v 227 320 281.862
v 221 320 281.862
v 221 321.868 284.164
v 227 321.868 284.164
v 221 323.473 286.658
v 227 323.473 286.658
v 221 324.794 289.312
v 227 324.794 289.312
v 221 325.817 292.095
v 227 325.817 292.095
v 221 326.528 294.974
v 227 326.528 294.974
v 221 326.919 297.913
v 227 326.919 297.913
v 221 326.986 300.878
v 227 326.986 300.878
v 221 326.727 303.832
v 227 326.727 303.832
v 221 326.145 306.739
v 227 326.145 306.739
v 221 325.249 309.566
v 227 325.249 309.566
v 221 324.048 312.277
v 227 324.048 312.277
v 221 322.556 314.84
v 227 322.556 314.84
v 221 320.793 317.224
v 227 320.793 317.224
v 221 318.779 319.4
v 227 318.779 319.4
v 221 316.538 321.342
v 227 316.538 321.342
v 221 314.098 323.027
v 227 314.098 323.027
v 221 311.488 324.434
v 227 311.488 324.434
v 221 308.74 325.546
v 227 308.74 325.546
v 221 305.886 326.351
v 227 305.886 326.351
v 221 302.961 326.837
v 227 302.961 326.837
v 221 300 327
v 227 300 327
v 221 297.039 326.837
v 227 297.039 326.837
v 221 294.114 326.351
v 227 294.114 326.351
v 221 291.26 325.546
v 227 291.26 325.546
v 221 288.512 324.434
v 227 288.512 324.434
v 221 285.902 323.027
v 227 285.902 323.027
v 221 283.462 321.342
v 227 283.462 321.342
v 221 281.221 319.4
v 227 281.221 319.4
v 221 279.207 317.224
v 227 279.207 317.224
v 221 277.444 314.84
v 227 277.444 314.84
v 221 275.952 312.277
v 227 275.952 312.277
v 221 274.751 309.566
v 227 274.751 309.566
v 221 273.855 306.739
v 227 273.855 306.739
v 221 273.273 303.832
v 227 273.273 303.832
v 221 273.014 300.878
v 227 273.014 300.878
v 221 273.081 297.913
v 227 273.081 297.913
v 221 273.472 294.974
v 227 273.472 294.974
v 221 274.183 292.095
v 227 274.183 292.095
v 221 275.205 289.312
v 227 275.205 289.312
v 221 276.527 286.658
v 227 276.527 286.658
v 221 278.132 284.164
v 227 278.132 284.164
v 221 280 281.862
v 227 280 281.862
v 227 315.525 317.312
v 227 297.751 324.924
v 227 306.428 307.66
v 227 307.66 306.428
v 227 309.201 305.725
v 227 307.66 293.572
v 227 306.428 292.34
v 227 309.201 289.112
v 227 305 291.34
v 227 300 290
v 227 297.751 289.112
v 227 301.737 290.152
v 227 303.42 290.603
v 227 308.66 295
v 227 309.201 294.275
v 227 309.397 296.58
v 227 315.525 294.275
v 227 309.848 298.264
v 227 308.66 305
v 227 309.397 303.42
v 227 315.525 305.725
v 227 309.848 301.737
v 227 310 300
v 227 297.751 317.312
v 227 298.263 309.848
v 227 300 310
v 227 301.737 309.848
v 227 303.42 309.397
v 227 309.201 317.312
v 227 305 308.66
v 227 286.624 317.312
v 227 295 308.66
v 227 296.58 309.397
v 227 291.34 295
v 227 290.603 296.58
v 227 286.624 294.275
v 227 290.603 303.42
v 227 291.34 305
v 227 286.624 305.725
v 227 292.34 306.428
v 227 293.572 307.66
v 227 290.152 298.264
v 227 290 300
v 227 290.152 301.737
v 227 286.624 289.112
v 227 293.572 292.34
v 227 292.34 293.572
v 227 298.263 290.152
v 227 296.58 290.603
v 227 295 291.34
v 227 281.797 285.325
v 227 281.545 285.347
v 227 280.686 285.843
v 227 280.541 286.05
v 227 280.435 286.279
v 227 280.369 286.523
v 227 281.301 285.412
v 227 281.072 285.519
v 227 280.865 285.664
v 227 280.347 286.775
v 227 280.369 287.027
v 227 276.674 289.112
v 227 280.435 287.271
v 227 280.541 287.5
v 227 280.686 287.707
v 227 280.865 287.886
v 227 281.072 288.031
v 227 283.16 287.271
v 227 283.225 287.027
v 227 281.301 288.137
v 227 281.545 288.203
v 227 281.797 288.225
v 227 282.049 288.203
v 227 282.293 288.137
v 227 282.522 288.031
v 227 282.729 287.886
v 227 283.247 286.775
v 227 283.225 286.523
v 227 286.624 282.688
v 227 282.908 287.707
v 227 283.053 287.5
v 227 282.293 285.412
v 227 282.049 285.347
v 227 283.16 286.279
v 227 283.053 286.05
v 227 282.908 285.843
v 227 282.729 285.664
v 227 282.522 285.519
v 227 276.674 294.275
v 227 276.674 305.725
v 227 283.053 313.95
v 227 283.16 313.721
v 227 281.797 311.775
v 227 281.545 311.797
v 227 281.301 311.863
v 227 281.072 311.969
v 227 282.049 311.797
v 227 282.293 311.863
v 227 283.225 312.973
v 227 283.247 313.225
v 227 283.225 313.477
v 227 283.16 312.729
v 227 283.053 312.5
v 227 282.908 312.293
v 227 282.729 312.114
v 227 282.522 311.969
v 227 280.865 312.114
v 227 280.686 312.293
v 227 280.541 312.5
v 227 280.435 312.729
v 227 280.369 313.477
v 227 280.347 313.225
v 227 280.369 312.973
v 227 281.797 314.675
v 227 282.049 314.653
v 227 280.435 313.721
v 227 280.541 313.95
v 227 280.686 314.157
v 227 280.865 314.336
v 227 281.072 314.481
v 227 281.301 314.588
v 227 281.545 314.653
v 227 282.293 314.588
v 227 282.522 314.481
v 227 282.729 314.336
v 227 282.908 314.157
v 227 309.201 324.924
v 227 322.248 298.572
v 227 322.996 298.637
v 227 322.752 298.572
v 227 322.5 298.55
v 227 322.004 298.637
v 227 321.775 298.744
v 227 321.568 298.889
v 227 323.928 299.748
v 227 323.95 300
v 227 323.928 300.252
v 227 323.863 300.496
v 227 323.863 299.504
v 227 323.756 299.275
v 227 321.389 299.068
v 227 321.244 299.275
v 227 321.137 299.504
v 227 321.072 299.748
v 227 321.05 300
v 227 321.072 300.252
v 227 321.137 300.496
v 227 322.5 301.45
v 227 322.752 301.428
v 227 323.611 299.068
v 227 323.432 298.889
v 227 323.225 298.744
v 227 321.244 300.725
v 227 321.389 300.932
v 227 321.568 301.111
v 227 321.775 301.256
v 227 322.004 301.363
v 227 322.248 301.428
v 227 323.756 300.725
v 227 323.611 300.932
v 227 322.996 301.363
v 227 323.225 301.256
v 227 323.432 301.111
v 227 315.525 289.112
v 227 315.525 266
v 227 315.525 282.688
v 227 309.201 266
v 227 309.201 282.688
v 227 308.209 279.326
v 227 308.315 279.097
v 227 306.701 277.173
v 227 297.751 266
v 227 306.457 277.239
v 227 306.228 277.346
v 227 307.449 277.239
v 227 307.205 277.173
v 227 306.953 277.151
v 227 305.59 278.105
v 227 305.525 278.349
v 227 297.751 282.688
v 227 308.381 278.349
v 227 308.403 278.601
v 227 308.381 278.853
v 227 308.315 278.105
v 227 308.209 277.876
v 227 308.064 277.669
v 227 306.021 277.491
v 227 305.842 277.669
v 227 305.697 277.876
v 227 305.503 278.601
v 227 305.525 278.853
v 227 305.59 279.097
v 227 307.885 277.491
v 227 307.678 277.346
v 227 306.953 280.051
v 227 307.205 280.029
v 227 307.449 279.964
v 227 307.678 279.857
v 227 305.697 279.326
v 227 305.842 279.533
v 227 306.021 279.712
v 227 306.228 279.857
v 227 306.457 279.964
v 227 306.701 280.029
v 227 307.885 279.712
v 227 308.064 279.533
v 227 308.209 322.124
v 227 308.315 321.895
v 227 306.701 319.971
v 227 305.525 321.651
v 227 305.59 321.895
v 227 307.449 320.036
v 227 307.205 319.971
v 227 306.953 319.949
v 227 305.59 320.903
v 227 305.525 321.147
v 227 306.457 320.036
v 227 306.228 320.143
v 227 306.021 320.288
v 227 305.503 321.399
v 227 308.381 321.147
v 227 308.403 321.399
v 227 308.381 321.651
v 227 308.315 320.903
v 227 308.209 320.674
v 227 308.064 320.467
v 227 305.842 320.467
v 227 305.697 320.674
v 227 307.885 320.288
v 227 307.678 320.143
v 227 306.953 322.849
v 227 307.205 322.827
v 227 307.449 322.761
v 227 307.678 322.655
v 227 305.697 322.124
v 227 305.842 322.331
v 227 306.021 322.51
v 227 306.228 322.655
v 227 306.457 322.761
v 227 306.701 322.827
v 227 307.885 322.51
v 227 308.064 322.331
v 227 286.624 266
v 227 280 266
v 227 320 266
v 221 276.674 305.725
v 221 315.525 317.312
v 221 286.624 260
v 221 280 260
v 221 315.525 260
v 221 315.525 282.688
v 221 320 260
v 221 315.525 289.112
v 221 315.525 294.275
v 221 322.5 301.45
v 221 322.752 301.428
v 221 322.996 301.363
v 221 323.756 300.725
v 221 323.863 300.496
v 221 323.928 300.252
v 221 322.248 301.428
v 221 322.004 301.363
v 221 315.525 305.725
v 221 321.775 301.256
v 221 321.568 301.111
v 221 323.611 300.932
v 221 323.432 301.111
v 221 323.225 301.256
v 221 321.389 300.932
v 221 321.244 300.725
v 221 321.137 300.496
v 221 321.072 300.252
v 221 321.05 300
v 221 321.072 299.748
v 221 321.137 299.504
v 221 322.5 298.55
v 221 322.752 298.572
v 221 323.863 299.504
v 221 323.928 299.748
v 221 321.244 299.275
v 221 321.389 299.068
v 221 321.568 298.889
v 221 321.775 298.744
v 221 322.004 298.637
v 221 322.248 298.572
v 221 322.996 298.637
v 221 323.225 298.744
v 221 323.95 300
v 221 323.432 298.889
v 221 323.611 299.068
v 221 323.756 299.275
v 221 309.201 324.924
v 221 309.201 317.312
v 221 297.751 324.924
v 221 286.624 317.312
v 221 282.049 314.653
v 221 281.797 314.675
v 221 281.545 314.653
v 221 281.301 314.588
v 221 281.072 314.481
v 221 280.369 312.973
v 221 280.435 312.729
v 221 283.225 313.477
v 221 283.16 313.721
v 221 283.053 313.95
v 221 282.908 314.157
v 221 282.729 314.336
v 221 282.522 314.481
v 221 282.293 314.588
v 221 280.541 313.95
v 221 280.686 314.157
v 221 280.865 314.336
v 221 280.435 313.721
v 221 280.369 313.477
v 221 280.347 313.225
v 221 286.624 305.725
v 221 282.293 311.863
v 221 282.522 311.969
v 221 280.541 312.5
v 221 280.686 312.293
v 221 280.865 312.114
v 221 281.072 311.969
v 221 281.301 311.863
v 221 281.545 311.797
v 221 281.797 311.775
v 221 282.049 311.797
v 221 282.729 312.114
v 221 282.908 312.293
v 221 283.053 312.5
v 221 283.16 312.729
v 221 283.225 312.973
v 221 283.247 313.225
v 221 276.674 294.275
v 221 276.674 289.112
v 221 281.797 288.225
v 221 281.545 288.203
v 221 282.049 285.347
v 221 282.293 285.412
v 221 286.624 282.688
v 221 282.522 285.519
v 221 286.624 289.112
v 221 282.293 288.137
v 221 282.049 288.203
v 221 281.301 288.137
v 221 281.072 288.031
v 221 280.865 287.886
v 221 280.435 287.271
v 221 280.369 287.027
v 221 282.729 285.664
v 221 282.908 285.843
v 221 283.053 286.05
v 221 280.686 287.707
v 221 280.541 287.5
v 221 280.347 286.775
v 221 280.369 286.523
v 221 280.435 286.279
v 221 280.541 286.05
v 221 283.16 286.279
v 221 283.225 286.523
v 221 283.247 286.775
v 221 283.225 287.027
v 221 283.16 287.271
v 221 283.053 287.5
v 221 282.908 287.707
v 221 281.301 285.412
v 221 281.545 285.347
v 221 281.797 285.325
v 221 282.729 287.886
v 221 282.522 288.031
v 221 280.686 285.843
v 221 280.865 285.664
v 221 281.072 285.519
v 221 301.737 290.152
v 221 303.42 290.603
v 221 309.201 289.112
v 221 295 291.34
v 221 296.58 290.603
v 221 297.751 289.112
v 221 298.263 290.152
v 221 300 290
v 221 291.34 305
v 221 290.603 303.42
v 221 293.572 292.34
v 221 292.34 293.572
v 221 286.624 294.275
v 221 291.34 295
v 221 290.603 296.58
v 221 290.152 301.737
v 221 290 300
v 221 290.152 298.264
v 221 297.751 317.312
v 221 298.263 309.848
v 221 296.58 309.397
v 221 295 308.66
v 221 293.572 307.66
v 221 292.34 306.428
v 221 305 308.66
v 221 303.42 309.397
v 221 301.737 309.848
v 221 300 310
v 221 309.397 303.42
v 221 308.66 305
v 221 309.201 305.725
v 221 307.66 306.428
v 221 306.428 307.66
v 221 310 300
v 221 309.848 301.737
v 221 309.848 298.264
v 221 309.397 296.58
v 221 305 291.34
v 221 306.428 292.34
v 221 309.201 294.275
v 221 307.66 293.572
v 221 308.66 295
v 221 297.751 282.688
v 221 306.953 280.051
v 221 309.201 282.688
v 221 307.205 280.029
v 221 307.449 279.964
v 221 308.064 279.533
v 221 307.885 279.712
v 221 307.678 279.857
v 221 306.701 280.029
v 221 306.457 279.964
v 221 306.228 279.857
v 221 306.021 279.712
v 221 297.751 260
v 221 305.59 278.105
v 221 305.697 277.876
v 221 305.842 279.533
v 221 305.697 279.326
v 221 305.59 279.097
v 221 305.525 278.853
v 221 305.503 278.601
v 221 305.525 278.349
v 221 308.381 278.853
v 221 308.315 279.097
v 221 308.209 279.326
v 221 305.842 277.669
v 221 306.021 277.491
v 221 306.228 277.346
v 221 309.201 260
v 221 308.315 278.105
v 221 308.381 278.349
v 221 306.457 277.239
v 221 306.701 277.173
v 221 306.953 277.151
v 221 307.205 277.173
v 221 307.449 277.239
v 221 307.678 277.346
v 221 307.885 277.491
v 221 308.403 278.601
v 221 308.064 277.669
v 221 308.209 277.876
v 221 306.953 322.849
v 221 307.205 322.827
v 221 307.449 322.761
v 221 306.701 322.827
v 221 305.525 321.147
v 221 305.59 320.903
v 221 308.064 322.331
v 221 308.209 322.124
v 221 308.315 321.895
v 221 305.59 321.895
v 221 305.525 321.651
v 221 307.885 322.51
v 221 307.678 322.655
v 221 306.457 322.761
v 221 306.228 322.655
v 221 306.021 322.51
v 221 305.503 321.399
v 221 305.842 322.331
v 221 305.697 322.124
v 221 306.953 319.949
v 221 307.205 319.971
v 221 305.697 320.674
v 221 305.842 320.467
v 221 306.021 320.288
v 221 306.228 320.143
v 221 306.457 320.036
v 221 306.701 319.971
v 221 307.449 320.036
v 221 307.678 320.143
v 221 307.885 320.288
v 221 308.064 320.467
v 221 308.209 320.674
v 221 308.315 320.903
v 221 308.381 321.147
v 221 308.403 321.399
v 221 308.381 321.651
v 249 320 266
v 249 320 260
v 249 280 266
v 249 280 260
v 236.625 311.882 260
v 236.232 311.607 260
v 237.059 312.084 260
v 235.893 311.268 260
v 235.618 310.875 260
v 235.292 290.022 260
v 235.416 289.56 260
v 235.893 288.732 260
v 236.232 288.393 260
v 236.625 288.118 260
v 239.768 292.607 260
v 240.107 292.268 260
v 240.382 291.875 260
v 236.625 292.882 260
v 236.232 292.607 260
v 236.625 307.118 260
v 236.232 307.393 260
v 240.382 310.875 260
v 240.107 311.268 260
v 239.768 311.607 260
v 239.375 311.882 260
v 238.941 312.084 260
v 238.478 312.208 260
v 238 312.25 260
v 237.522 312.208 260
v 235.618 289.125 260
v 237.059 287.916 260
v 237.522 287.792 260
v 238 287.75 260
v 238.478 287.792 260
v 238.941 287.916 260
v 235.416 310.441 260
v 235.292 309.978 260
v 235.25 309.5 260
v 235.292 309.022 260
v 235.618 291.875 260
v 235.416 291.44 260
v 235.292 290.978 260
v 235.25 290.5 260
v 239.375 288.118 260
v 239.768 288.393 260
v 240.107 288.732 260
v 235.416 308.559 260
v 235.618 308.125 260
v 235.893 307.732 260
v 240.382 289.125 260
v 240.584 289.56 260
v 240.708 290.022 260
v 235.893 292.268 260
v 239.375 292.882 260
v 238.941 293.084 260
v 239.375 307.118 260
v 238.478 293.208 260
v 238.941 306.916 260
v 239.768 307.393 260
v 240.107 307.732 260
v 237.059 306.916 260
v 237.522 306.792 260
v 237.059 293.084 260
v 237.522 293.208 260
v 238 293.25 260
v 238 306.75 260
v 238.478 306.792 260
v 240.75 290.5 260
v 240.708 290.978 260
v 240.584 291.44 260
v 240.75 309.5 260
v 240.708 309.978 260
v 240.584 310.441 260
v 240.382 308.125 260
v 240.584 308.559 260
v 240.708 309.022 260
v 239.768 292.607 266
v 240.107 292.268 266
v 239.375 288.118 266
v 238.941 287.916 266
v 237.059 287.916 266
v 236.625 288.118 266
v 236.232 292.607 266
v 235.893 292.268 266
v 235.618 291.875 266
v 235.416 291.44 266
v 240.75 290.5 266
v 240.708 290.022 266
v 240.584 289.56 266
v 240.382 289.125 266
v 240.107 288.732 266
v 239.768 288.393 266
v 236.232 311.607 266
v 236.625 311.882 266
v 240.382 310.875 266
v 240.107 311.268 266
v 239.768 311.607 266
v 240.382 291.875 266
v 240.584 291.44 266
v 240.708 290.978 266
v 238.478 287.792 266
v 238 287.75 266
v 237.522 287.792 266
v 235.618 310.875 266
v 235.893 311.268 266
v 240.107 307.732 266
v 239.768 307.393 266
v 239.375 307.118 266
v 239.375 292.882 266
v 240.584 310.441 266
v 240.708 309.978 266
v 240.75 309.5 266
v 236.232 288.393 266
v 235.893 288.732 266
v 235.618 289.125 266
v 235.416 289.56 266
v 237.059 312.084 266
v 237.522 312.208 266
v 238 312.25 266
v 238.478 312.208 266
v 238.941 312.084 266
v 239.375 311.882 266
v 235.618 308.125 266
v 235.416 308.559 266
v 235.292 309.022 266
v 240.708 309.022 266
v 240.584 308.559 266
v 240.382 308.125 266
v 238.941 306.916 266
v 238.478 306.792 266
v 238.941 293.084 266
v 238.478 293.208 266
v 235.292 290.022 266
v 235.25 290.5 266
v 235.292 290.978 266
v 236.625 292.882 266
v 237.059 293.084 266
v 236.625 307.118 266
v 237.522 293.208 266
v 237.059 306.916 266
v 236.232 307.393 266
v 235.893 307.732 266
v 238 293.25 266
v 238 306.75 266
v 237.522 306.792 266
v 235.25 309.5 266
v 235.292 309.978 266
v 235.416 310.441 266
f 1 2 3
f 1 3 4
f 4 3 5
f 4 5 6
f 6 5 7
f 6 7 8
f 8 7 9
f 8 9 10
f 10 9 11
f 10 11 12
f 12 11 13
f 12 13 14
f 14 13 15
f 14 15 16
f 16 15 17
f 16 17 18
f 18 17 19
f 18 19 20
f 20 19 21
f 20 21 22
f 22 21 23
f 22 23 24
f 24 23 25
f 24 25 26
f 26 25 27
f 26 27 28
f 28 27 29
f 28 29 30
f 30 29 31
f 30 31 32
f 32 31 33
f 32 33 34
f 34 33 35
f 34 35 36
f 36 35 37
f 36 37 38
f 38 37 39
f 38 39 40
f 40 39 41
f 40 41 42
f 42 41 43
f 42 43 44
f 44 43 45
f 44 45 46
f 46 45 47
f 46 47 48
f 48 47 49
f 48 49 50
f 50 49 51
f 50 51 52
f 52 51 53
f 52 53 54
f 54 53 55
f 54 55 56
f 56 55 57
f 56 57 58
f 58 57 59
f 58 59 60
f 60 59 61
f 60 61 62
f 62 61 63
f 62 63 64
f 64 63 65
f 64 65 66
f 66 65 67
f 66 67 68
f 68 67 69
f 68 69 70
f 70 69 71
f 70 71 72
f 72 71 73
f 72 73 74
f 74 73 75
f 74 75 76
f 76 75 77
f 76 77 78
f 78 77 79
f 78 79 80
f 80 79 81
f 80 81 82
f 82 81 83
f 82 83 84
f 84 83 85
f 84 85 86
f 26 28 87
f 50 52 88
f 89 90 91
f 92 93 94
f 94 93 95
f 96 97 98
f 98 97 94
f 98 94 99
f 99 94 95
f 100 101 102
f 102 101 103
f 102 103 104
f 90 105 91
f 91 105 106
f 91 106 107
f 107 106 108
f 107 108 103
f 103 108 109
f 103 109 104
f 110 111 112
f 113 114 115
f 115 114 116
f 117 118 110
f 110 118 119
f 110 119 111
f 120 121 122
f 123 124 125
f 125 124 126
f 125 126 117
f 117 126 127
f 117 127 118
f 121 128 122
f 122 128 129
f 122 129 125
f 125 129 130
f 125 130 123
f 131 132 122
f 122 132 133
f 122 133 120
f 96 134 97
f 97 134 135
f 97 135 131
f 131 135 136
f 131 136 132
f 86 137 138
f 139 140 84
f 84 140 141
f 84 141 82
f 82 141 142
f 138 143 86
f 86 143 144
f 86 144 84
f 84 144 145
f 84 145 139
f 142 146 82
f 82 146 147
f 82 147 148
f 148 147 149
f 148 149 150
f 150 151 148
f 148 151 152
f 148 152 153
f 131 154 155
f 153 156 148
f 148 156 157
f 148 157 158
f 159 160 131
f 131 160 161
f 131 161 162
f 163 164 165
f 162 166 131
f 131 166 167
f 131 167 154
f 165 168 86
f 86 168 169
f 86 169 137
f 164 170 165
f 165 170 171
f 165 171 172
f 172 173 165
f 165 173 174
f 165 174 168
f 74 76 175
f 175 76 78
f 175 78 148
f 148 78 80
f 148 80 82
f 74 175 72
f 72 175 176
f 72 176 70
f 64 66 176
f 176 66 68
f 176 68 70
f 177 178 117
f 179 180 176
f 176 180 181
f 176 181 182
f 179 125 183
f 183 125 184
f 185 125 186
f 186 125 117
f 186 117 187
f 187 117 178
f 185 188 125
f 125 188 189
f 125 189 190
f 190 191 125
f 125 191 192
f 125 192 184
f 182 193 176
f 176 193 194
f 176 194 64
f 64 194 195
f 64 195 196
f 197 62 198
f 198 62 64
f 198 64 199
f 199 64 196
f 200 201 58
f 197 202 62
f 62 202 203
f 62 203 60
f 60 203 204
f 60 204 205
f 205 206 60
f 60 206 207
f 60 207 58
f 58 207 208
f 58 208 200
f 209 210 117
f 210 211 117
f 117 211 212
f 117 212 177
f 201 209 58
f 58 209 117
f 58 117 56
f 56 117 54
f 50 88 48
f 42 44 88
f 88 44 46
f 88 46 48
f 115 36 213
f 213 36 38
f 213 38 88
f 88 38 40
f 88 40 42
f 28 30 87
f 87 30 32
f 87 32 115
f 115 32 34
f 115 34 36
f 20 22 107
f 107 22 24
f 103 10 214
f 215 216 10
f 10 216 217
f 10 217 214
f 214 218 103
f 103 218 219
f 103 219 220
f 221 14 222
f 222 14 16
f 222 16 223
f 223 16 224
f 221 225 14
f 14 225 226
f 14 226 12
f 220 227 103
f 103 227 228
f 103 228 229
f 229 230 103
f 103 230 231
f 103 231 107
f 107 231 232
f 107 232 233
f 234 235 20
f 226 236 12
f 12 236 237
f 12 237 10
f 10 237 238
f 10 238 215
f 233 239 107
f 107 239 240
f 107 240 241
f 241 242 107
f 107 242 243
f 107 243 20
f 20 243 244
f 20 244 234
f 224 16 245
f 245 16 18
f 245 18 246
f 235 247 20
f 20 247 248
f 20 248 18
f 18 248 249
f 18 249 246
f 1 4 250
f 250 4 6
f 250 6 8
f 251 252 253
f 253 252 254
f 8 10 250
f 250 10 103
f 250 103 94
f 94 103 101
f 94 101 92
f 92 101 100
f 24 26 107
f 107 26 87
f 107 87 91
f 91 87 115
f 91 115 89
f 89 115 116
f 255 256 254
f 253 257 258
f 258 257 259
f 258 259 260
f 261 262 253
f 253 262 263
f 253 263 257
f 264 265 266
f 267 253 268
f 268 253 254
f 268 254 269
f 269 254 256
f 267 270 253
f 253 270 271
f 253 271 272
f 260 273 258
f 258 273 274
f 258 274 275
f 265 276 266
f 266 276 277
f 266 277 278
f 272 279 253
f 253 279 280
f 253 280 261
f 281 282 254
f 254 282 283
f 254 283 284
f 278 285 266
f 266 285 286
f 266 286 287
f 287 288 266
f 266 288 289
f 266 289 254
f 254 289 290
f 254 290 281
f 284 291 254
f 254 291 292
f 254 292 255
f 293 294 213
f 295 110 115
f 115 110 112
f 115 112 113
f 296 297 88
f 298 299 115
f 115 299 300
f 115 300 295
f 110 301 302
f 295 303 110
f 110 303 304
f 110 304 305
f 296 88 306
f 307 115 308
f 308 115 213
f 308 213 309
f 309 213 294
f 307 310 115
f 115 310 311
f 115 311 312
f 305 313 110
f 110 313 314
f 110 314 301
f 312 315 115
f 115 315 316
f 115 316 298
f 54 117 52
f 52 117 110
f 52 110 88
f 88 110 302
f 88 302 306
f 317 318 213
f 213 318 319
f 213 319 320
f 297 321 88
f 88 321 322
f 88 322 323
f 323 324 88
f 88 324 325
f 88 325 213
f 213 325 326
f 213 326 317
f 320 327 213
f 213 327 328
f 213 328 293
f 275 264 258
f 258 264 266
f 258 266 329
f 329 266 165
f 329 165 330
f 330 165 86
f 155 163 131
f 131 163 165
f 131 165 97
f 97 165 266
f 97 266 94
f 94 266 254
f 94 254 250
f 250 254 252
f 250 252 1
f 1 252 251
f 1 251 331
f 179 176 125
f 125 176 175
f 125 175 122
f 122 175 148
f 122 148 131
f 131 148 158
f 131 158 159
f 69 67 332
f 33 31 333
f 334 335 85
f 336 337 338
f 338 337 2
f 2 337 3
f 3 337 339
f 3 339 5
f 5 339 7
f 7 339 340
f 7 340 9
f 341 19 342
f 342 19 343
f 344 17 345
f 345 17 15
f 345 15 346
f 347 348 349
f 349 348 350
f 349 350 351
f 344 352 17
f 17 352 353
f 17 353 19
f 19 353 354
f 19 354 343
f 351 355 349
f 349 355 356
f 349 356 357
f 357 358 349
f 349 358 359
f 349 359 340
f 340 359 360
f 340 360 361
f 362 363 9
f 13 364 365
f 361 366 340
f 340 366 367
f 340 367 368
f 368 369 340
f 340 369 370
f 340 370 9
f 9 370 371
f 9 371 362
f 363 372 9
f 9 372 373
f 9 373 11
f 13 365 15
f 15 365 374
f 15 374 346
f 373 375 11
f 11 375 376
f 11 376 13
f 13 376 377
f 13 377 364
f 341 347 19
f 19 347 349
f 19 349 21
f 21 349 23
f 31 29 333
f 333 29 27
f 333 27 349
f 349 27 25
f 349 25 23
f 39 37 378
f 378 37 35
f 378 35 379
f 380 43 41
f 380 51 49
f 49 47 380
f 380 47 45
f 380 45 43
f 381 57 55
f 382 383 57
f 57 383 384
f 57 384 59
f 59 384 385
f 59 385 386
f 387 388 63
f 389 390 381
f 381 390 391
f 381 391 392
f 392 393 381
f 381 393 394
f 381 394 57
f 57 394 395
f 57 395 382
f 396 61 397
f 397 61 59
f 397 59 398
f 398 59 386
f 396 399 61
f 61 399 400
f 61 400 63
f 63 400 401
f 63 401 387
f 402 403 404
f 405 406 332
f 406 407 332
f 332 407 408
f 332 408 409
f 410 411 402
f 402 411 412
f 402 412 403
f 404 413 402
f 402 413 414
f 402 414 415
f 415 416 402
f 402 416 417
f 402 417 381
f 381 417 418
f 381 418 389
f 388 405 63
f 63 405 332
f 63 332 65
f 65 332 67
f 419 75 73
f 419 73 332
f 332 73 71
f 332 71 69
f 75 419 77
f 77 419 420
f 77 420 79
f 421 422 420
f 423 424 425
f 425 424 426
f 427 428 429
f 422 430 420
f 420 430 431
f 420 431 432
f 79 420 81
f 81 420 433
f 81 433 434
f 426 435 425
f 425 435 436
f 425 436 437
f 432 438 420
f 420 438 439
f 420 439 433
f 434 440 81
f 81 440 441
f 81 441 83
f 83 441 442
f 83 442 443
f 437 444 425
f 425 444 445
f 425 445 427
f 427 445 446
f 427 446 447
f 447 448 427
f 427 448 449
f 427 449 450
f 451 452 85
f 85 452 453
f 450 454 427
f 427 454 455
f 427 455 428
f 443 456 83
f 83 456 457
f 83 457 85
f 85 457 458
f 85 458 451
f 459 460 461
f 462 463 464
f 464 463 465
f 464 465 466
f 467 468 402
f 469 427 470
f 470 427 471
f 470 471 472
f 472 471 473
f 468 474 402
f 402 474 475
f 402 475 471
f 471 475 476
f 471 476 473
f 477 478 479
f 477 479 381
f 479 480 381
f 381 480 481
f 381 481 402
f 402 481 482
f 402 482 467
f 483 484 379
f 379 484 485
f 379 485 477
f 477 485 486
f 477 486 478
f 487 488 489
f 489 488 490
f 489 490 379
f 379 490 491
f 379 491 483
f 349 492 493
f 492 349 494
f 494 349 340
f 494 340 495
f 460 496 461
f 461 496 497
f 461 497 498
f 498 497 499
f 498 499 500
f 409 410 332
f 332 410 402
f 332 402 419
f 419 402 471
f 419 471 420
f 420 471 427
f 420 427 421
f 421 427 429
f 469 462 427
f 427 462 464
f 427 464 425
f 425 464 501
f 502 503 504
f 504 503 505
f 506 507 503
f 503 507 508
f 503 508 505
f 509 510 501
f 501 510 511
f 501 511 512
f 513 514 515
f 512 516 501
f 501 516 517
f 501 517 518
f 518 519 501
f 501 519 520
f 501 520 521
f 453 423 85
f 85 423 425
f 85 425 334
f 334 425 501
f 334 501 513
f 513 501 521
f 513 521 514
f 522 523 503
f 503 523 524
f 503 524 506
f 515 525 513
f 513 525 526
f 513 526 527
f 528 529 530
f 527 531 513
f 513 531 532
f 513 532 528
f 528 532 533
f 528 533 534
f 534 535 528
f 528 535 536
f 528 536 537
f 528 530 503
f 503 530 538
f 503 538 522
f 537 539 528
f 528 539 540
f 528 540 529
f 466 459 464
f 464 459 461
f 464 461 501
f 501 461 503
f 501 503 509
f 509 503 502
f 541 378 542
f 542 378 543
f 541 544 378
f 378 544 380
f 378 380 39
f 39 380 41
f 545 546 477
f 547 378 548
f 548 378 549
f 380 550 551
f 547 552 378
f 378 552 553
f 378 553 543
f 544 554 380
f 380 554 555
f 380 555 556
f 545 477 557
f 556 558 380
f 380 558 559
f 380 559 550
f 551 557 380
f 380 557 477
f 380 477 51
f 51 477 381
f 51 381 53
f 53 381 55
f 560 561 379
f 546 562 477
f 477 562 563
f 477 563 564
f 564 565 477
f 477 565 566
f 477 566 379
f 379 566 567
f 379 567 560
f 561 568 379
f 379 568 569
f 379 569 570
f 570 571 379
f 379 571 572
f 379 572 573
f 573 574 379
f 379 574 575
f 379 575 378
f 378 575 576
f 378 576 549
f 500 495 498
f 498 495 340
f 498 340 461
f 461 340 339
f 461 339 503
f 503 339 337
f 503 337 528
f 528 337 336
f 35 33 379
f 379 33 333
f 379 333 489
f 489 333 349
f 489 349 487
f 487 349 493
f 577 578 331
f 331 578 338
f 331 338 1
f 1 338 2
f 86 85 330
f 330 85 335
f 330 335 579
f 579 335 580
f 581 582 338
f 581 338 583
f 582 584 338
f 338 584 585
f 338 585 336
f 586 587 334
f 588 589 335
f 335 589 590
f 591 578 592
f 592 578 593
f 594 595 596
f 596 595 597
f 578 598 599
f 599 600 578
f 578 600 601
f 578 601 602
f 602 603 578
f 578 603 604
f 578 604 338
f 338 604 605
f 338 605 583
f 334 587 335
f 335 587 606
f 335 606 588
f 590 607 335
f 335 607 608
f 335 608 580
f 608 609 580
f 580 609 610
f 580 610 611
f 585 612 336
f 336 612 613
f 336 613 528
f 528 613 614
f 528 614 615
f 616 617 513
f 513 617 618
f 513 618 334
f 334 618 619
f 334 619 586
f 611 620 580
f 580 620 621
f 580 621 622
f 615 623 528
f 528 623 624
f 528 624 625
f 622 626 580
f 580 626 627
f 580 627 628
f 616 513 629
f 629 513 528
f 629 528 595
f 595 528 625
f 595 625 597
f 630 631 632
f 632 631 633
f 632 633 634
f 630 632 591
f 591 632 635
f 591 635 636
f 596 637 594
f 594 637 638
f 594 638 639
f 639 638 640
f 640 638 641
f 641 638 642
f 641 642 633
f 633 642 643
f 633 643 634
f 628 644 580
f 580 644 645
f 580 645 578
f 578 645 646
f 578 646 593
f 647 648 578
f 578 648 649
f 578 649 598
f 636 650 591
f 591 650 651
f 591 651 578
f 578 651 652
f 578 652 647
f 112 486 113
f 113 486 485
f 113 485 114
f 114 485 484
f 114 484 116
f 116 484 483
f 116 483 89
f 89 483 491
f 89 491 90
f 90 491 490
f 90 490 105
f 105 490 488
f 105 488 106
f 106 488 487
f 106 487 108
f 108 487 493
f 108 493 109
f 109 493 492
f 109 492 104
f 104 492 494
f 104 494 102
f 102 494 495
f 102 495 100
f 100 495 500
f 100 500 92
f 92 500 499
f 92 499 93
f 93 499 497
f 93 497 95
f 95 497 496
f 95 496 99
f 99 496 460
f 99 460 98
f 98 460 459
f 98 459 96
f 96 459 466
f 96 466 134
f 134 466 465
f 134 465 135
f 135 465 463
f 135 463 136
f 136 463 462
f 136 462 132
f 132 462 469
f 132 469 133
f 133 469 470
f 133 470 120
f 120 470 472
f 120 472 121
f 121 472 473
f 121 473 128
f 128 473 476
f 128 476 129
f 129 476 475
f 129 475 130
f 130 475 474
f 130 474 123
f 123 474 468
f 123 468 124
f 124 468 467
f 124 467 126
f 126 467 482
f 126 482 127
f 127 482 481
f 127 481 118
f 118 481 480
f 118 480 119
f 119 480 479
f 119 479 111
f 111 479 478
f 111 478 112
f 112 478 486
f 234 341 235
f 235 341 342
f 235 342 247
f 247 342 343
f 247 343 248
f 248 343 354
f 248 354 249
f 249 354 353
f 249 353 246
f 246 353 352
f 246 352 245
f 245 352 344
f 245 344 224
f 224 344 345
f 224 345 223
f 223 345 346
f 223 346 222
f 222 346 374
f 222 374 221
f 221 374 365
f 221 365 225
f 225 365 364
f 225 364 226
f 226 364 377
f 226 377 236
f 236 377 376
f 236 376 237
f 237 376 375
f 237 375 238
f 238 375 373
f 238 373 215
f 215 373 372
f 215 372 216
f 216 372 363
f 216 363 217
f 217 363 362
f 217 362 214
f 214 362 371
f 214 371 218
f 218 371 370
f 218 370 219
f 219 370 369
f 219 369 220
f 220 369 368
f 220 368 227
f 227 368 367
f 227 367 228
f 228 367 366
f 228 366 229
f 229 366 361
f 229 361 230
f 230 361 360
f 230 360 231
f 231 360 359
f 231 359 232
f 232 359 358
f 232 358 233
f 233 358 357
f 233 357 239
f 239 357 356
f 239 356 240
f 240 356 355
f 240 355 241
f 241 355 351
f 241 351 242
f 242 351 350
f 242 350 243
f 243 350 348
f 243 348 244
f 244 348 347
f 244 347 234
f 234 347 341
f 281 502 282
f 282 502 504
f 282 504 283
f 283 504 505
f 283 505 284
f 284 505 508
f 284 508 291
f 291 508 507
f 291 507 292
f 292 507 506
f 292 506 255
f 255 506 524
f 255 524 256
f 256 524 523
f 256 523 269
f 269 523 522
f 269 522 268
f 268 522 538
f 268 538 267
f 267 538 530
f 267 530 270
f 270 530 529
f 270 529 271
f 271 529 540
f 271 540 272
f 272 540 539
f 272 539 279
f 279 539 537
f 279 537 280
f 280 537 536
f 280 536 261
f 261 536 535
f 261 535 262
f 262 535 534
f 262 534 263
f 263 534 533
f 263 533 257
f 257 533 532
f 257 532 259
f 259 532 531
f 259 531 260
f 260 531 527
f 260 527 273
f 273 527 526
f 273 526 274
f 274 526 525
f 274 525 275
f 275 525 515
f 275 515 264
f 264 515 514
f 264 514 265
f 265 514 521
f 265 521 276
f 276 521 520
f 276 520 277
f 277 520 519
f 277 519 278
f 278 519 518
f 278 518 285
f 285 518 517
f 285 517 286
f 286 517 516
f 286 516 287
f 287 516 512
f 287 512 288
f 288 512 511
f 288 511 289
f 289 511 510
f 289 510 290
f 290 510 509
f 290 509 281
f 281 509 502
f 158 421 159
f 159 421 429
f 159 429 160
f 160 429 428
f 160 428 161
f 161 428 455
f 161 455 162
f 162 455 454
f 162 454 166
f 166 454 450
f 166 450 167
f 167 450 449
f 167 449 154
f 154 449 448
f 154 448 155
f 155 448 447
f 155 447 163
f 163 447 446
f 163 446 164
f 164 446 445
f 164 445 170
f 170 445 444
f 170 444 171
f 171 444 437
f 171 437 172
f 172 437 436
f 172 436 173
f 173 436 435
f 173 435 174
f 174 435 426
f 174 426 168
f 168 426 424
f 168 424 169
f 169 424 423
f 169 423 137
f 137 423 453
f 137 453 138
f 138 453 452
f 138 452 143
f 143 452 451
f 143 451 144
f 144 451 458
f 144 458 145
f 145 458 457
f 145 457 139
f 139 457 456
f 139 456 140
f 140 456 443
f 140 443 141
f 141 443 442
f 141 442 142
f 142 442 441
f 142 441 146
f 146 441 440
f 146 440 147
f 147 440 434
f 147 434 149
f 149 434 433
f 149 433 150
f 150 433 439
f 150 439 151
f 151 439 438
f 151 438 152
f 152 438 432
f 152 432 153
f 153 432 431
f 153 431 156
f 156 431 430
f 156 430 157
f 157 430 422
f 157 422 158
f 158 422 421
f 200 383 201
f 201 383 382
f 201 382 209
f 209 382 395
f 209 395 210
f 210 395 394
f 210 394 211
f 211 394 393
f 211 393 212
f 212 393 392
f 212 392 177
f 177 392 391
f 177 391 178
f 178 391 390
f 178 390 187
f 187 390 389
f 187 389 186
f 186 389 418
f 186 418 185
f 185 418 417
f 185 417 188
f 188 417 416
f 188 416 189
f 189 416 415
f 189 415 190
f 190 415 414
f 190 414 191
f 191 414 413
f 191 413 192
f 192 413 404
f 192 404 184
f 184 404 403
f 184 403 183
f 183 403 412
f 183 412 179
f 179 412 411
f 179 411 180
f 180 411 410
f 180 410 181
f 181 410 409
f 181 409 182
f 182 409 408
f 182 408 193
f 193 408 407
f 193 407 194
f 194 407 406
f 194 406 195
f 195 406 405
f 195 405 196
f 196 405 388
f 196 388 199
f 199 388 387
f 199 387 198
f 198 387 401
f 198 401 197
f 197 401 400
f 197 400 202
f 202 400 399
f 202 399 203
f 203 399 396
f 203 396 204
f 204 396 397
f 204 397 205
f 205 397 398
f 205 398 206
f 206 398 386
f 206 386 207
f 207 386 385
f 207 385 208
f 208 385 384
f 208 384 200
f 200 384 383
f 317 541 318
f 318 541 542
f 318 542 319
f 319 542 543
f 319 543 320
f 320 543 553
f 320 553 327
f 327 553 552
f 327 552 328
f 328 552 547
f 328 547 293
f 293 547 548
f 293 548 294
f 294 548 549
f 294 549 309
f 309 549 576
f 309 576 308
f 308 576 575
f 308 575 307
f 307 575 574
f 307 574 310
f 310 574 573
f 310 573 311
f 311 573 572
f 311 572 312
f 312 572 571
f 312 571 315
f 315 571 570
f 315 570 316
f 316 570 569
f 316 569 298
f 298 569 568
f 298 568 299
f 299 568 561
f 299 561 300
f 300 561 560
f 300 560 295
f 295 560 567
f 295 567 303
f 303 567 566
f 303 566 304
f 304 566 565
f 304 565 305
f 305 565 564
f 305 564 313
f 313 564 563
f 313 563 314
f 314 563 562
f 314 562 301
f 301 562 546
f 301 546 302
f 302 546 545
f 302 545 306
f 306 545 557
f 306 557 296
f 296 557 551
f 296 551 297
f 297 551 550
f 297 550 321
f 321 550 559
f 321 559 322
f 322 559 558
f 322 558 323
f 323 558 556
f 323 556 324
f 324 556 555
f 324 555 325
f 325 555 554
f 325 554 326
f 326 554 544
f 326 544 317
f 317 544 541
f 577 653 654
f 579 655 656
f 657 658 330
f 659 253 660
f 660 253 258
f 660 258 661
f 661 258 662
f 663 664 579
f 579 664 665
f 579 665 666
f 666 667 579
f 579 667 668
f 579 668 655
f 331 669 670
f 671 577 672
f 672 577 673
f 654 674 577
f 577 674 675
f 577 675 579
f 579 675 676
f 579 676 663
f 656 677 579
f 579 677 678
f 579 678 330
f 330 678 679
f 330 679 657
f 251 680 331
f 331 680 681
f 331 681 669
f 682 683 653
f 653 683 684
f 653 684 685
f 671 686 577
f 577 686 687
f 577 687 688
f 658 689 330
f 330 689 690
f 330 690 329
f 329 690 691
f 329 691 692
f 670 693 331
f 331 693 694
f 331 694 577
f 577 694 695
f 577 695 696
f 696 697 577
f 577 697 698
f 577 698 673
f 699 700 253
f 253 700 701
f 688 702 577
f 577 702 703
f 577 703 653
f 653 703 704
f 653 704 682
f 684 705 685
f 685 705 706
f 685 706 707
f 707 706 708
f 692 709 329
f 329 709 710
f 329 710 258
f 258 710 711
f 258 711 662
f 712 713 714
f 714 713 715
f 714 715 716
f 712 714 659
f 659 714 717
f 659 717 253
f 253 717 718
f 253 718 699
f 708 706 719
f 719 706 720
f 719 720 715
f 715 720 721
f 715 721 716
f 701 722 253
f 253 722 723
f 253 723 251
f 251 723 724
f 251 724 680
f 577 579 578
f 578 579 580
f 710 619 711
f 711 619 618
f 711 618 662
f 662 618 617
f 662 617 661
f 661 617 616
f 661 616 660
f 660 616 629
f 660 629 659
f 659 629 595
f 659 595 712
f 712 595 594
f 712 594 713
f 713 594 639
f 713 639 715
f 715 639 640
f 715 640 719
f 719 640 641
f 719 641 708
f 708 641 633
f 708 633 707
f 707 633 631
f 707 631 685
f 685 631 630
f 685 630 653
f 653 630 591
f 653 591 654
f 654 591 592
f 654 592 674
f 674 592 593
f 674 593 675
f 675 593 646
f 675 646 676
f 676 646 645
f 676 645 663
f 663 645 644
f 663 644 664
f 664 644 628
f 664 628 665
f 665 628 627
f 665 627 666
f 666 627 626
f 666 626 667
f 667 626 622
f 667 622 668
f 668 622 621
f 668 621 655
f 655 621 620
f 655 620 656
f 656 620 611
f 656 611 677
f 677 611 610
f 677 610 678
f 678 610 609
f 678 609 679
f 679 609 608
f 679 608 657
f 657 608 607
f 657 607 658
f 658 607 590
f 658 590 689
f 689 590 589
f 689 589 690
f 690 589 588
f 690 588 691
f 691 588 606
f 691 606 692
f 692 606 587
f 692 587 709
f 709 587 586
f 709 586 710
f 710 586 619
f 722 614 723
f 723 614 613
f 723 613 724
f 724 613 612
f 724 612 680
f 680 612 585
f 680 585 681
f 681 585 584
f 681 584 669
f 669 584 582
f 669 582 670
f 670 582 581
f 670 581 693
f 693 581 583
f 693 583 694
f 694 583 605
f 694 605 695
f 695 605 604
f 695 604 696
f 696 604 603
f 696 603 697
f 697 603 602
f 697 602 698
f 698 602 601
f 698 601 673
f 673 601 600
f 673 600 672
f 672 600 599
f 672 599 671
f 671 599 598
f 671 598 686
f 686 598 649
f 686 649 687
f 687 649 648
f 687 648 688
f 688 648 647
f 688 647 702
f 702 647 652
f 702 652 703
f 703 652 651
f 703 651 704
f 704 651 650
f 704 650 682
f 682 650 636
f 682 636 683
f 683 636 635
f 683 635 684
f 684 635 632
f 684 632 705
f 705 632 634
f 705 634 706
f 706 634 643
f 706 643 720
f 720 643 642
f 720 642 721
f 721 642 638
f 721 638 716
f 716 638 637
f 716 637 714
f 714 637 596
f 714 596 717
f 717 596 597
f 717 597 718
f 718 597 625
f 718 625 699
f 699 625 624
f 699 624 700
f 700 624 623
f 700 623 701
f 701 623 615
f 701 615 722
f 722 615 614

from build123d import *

# Parameters (mm, degrees)
SKETCH1_R           = 27
BOSS_EXTRUDE1_DEPTH = 6
SKETCH2_W           = 25
SKETCH2_H           = 40
BOSS_EXTRUDE2_DEPTH = 6
SKETCH3_R           = 10
SKETCH3_R_2         = 1.45
CUT_EXTRUDE1_DEPTH  = 6
SKETCH4_W           = 22.01
SKETCH4_H           = 40
SKETCH4_R           = 2.75
BOSS_EXTRUDE3_DEPTH = 6


with BuildPart() as part:
    # Sketch1 → Boss-Extrude1 (new body)
    with BuildSketch(Plane(origin=(221, 0, 0), x_dir=(0, 0, -1), z_dir=(1, 0, 0))):
        with Locations((-300, 300)):
            Circle(SKETCH1_R)
    extrude(amount=BOSS_EXTRUDE1_DEPTH)

    # Sketch2 → Boss-Extrude2 (add)
    with BuildSketch(Plane(origin=(221, 0, 0), x_dir=(0, 0, -1), z_dir=(1, 0, 0))):
        with Locations((-272.5, 300)):
            Rectangle(SKETCH2_W, SKETCH2_H)
    extrude(amount=BOSS_EXTRUDE2_DEPTH)

    # Sketch3 → Cut-Extrude1 (cut)
    with BuildSketch(Plane(origin=(221, 0, 0), x_dir=(0, 0, -1), z_dir=(1, 0, 0))):
        with Locations((-300, 300)):
            Circle(SKETCH3_R)
        with Locations((-300, 322.5)):
            Circle(SKETCH3_R_2)
        with Locations((-278.601228383, 306.952882373)):
            Circle(SKETCH3_R_2)
        with Locations((-286.774831823, 281.797117627)):
            Circle(SKETCH3_R_2)
        with Locations((-313.225168177, 281.797117627)):
            Circle(SKETCH3_R_2)
        with Locations((-321.398771617, 306.952882373)):
            Circle(SKETCH3_R_2)
    extrude(amount=CUT_EXTRUDE1_DEPTH, mode=Mode.SUBTRACT)

    # Sketch4 → Boss-Extrude3 (add)
    with BuildSketch(Plane.XY.offset(260)):
        with Locations((237.995, 300)):
            Rectangle(SKETCH4_W, SKETCH4_H)
        with Locations((238, 290.5)):
            Circle(SKETCH4_R, mode=Mode.SUBTRACT)
        with Locations((238, 309.5)):
            Circle(SKETCH4_R, mode=Mode.SUBTRACT)
    extrude(amount=BOSS_EXTRUDE3_DEPTH)


solid = part.part
